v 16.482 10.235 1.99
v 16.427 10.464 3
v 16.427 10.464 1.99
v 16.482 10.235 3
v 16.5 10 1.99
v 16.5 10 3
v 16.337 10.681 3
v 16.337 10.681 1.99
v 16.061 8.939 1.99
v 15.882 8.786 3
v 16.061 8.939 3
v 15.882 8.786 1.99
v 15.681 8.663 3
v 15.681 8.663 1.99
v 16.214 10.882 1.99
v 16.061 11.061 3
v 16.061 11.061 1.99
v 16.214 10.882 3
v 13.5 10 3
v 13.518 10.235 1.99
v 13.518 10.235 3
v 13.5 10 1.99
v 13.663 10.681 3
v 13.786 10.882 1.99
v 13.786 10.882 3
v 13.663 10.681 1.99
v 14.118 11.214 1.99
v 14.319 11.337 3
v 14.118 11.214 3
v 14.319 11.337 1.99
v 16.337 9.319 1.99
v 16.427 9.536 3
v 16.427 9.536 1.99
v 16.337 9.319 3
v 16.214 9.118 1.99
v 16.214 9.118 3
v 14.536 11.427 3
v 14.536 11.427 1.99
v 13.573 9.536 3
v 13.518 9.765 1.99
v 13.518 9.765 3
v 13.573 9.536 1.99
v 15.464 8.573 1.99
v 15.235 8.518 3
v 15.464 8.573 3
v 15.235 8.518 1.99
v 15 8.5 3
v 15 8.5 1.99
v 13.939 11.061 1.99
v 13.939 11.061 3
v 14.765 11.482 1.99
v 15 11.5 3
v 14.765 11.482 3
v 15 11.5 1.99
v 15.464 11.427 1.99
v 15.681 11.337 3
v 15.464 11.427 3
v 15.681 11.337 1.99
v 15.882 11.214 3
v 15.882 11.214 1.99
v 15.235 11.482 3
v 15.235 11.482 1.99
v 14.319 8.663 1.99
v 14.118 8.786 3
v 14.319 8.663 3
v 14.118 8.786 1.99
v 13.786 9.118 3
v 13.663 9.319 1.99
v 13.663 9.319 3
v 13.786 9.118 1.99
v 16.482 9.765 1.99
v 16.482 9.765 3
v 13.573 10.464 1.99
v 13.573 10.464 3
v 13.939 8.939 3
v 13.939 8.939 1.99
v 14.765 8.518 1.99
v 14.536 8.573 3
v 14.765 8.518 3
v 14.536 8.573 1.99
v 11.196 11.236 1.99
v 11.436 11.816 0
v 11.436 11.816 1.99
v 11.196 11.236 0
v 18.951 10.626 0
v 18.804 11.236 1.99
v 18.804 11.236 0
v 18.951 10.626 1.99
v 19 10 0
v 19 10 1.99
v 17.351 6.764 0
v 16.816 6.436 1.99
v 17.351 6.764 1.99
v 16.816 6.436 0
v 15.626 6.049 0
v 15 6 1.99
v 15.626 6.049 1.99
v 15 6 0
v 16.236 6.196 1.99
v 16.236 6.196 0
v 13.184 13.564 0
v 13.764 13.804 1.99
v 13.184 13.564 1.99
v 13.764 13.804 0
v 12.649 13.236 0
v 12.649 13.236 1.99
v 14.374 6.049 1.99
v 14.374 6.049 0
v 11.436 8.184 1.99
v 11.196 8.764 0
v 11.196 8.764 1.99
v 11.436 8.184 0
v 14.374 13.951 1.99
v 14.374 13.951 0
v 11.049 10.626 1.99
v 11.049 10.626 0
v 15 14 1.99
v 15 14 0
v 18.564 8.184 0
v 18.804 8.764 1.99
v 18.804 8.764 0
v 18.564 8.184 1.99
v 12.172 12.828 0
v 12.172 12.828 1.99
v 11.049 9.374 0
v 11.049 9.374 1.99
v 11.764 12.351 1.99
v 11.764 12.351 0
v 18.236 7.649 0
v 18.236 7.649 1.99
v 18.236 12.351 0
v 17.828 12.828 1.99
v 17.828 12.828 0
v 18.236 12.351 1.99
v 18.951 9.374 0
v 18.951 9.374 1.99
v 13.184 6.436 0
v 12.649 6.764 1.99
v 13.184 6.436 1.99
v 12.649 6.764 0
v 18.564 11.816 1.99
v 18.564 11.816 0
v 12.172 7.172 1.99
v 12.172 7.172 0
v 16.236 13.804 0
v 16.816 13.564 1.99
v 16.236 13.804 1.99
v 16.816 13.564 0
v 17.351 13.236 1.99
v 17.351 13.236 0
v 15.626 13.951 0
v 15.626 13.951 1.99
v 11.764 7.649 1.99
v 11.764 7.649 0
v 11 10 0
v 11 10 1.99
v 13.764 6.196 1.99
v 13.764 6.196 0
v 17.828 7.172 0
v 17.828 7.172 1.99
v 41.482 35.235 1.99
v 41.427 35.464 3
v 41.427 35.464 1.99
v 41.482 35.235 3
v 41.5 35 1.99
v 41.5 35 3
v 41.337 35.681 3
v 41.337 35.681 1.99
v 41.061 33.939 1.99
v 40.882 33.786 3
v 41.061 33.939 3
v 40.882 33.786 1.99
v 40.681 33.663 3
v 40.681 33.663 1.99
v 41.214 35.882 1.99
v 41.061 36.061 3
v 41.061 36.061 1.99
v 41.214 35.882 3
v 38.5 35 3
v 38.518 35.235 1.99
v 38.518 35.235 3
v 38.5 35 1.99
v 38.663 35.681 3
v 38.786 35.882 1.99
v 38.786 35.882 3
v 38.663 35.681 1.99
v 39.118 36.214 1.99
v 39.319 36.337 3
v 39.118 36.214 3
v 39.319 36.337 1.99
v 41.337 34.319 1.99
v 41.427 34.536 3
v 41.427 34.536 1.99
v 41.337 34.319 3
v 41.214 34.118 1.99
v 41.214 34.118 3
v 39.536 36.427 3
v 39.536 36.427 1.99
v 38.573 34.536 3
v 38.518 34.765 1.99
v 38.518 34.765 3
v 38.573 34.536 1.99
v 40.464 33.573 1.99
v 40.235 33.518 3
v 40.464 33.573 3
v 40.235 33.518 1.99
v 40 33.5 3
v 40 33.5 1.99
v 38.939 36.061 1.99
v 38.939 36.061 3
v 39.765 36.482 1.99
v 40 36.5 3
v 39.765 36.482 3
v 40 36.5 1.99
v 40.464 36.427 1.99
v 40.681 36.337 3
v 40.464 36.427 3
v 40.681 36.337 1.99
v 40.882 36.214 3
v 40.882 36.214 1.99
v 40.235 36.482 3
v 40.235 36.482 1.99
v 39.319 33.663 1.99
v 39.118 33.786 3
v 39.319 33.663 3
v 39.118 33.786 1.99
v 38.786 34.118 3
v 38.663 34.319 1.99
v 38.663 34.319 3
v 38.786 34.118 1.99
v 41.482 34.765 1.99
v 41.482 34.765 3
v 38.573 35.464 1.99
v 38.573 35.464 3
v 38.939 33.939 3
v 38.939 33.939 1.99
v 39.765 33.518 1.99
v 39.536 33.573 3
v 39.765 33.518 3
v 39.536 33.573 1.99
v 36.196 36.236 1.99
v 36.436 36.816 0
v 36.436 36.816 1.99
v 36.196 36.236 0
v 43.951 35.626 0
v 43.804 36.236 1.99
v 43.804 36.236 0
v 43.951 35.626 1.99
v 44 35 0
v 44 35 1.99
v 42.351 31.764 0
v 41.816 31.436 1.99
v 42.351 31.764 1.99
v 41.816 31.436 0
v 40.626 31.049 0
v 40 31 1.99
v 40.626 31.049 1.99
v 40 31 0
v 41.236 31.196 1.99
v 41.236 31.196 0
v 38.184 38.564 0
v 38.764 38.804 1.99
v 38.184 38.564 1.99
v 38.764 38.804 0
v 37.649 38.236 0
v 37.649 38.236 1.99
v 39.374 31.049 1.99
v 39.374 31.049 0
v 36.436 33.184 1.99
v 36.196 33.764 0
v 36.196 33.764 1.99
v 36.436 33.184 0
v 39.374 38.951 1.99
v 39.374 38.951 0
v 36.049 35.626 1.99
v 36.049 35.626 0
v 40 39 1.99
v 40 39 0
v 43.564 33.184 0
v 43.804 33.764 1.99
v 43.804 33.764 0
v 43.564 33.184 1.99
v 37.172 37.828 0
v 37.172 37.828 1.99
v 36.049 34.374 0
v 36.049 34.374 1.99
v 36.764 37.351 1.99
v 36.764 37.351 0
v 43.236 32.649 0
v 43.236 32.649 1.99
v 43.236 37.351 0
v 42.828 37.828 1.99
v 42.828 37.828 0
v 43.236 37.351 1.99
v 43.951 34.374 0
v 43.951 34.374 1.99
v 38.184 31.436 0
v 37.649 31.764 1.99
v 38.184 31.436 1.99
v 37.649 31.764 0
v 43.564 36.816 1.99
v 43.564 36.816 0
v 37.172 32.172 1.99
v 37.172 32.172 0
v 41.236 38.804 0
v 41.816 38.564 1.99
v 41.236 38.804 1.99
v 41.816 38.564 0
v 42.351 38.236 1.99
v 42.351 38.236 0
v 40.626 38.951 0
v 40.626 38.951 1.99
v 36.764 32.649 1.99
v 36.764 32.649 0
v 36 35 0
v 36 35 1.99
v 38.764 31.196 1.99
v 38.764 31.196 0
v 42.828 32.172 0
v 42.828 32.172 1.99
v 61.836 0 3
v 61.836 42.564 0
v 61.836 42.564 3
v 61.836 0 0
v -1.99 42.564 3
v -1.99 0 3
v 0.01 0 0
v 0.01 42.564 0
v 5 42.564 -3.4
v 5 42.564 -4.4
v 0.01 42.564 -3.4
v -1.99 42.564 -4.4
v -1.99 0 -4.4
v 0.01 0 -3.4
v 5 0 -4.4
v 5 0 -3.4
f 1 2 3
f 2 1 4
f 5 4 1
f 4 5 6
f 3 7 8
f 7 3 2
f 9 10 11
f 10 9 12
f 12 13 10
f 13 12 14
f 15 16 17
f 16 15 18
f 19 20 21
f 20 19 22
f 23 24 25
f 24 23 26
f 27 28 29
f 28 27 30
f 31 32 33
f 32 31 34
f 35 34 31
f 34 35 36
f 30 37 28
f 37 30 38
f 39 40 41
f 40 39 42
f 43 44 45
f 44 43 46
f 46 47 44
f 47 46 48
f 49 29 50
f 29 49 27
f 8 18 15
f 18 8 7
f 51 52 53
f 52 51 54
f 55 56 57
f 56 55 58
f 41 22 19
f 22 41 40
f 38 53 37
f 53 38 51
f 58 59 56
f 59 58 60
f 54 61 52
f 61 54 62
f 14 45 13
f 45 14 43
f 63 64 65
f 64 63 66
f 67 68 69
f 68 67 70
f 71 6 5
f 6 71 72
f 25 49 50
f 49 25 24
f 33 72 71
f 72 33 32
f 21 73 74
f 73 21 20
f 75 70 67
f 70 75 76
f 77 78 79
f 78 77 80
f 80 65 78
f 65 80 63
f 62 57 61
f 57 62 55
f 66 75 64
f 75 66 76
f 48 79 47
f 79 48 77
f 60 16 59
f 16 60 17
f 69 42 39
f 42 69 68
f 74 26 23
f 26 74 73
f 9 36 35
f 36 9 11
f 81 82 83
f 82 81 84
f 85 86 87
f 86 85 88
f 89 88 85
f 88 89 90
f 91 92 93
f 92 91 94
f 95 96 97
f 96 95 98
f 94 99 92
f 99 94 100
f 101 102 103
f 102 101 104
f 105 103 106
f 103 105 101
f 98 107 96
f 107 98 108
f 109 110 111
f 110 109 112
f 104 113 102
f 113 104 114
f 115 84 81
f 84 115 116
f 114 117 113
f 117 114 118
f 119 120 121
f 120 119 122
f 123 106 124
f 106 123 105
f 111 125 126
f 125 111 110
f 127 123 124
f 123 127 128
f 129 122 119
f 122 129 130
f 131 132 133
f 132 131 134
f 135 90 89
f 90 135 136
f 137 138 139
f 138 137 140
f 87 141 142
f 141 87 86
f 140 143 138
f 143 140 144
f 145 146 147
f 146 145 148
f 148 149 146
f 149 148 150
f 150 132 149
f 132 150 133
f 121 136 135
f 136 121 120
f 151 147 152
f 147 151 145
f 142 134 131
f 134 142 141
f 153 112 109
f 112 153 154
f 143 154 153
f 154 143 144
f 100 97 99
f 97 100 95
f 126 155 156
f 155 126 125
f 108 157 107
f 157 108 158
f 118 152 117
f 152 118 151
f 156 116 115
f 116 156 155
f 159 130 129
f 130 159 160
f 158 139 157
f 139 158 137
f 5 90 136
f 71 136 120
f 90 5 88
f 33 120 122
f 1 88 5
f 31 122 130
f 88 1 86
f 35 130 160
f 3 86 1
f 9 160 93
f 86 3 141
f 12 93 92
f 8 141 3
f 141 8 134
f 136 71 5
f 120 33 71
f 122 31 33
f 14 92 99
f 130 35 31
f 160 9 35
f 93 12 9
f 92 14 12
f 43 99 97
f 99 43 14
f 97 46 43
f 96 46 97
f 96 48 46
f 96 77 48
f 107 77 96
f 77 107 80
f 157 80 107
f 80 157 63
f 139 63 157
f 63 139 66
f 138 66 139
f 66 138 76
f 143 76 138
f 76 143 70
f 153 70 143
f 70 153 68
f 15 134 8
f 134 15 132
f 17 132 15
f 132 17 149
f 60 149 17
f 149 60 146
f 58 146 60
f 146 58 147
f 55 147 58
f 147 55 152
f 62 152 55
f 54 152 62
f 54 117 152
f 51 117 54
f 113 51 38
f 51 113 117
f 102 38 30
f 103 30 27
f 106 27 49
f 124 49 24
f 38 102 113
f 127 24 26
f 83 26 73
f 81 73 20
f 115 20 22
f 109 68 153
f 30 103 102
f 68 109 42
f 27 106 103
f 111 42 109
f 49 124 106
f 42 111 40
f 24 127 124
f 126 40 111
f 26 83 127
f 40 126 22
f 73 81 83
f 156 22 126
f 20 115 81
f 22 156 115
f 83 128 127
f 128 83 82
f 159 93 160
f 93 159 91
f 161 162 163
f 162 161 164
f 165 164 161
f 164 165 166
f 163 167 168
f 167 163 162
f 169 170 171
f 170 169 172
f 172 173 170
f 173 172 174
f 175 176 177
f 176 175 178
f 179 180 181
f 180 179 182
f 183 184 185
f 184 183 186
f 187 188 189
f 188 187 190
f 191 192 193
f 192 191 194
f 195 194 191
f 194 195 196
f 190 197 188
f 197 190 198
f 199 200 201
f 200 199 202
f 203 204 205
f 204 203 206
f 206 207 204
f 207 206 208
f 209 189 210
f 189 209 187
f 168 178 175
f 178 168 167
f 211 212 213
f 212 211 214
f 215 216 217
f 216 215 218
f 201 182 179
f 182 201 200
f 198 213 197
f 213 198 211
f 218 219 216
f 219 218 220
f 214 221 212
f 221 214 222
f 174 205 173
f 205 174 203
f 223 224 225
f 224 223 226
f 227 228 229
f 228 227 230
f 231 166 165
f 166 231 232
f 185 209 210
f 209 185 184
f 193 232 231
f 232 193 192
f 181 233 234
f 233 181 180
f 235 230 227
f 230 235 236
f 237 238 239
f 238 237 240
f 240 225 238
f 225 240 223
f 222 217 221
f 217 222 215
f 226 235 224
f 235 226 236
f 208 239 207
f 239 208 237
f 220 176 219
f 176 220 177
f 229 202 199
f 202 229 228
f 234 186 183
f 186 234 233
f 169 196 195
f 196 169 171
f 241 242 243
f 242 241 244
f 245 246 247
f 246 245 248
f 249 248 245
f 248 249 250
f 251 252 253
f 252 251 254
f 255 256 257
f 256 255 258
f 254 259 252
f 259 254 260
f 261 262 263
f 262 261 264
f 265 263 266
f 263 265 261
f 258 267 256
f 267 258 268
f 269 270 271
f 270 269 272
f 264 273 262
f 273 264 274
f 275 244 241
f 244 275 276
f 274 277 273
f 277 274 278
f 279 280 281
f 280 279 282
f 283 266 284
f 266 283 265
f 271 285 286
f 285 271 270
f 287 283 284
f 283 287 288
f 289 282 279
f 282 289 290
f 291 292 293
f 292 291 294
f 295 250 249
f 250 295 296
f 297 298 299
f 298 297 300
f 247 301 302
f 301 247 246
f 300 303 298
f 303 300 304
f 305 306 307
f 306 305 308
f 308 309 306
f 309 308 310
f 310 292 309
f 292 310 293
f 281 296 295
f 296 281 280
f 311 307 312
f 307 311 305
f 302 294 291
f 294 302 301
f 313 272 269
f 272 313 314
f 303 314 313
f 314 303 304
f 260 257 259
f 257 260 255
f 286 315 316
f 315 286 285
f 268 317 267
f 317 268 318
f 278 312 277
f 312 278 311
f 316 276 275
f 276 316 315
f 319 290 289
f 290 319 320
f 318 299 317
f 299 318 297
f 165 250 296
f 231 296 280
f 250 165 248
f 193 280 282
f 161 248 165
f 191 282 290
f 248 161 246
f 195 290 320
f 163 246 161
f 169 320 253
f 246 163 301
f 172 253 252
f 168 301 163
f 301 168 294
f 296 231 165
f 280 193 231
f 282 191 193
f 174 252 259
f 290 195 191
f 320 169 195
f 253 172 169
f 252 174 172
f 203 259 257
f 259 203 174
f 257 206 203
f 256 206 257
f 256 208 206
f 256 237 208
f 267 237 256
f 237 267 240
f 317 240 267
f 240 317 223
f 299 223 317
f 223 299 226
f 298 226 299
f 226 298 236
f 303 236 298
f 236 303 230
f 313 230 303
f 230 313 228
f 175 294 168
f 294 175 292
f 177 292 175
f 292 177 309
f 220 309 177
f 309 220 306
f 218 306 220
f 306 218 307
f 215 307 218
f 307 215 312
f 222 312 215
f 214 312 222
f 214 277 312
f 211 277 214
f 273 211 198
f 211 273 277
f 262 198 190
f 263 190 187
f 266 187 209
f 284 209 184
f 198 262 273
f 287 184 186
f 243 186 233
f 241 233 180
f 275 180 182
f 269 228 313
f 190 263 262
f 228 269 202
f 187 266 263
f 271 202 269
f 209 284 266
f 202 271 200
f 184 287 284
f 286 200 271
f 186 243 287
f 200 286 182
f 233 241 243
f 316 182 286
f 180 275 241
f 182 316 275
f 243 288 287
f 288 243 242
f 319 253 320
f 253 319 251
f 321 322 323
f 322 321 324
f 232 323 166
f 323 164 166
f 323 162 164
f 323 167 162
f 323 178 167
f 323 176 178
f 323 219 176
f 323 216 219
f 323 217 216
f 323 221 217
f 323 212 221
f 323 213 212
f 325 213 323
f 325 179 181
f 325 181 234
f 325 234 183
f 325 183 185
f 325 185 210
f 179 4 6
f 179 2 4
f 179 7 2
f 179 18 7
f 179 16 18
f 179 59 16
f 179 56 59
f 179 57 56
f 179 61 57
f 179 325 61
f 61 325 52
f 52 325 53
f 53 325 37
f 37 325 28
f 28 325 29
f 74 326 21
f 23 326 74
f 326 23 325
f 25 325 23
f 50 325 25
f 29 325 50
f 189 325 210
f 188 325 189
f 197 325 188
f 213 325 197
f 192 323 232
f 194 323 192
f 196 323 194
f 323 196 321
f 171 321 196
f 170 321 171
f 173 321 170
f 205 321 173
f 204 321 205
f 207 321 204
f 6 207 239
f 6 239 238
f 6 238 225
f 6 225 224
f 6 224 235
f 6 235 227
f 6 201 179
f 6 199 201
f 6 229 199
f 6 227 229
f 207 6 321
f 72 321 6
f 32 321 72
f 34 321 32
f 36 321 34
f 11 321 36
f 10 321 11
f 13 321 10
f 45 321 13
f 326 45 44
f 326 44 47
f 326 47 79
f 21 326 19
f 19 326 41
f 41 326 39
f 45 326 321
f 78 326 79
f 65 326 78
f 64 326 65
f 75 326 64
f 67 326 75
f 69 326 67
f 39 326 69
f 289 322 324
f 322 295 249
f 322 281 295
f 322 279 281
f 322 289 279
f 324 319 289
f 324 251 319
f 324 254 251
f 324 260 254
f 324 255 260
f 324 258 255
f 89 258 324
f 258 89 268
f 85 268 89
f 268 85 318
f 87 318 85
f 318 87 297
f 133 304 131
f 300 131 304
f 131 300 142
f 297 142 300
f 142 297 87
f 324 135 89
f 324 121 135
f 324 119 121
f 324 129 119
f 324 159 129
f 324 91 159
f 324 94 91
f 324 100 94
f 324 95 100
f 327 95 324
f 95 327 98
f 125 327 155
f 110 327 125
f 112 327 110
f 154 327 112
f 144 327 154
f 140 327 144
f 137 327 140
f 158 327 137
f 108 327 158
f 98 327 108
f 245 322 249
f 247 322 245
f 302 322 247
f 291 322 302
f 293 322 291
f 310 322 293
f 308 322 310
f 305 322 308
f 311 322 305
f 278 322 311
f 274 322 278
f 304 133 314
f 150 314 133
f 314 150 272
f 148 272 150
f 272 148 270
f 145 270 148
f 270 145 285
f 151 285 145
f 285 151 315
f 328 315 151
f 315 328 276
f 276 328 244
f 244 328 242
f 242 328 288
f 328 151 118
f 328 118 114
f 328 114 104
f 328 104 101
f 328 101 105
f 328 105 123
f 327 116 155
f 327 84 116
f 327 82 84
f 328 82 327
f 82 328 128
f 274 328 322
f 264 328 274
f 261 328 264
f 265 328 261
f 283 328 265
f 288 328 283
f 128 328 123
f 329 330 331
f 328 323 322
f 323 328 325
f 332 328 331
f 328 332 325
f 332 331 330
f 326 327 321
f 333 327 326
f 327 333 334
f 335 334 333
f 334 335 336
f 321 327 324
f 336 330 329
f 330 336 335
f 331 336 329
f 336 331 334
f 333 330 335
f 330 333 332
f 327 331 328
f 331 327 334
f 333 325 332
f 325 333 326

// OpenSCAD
// file: ../box/ProjectBox/util.scad
// Copyright (c) 2024 Chris Lee and contibuters.
// Licensed under the MIT license. See LICENSE file in the project root for details.

include <MCAD/units.scad>

ones = [1, 1, 1];

module RX(angle) {
  rotate(angle, X) children();
}
module RY(angle) {
  rotate(angle, Y) children();
}
module RZ(angle) {
  rotate(angle, Z) children();
}
module TX(dist) {
  translate(X*dist) children();
}
module TX(dist) {
  translate(X*dist) children();
}
module TY(dist) {
  translate(Y*dist) children();
}
module TZ(dist) {
  translate(Z*dist) children();
}

// x-extra and y-extra adjust the x/y offset at the far-x and far-y corners.
module at_corners(dims, corner_offset, to_draw=undef, x_extra=0.0, y_extra=0.0) {
  o = corner_offset;
  if (!to_draw || to_draw[0]) translate([o, o, 0]) children();
  if (!to_draw || to_draw[1]) translate([dims[0]-o+x_extra, o, 0]) rotate(90, Z) children();
  if (!to_draw || to_draw[2]) translate([dims[0]-o+x_extra, dims[1]-o+y_extra, 0])
				rotate(180, Z) children();
  if (!to_draw || to_draw[3]) translate([o, dims[1]-o+y_extra, 0]) rotate(270, Z) children();
}
// file: ../box/ProjectBox/screw_tab.scad
// Copyright (c) 2024 Chris Lee and contibuters.
// Licensed under the MIT license. See LICENSE file in the project root for details.

include <MCAD/units.scad>

// Screw tab is drawn in the y-direction (attached on -Y side).
module screw_tab(tab_width=10, thickness=2, screw_radius=2) {
  $fn=40;
  dz = thickness;
  sd = tab_width;
  sr = tab_width / 2;
  translate([-sr, -epsilon, 0]) difference() {
    union() {
      cube([sd, sr, dz]);
      translate([sr, sr, 0]) cylinder(dz, sr, sr);
    }
    translate([sr, sr, -epsilon]) cylinder(dz+1, screw_radius, screw_radius);
  }
}
// file: ../box/ProjectBox/rounded_box.scad
// Copyright (c) 2024 Chris Lee and contibuters.
// Licensed under the MIT license. See LICENSE file in the project root for details.

module rounded_box(dims, r) {
  x = dims[0];
  y = dims[1];
  z = dims[2];
  module cyl() {
    cylinder(z, r, r, $fn=40);
  }
  if (r == 0) {
    cube(r);
  } else {
    hull() {
      translate([r, r, 0]) cyl();
      translate([x-r, r, 0]) cyl();
      translate([x-r, y-r, 0]) cyl();
      translate([r, y-r, 0]) cyl();
    }
  }
}
// file: ../box/ProjectBox/shtc3_window.scad
// Copyright (c) 2024 Chris Lee and contibuters.
// Licensed under the MIT license. See LICENSE file in the project root for details.

module shtc3_window(offset, space_above_board, wall, negative, z_gap = 0.0) {
  sz = [3, 3, 1];
  translate(offset) {
    if (negative) {
      translate([0, 0, z_gap-1]) {
	cube([sz[0], sz[1], space_above_board+wall+2-z_gap]);
      }
    } else {
      translate([-wall, -wall, z_gap+epsilon]) {
	cube([sz[0] + 2*wall, sz[1] + 2*wall, space_above_board-z_gap]);
      }
    }
  }
}
// file: ../box/ProjectBox/mounts.scad
// Copyright (c) 2024 Chris Lee and contibuters.
// Licensed under the MIT license. See LICENSE file in the project root for details.

module screw_mount(height, wall, screw_radius) {
  $fn = 20;
  difference() {
    cylinder(height, screw_radius+wall, screw_radius+wall);
    cylinder(height+epsilon, screw_radius, screw_radius);
  }
}
// file: ../box/ProjectBox/project_box.scad
// Copyright (c) 2024 Chris Lee and contibuters.
// Licensed under the MIT license. See LICENSE file in the project root for details.

include <MCAD/units.scad>
include <rounded_box.scad>
include <screw_tab.scad>
use <util.scad>

bump_d = 0.8;

module in_board_frame(outer_dims, board_dims, space_below_board) {
  translate([(outer_dims[0] - board_dims[0])/2,
	     (outer_dims[1] - board_dims[1])/2,
	     space_below_board])
    children();
}

default_tab_len = 10;
function tab_length(dim, num_tabs=2) = min(default_tab_len, dim/(2*(num_tabs+1)));
function tab_offset(i, dim, num_tabs=2) = (dim*(i+1)/(num_tabs+1))-0.5*tab_length(dim, num_tabs);

module project_box(outer_dims,
		   wall_thickness=1,
		   gap=0.1,
		   // If true put snaps for top/bottom on sides rather than front/back.
		   snaps_on_sides=false,
		   corner_radius=0.0,
		   top=true,
		   top_cutouts=undef,
		   ym_cutouts=undef,
		   screw_tab_d=0) {
  wall = wall_thickness;
  num_snaps = 2;

  // Length of side of box snap-tabs will be added.
  tabdim = snaps_on_sides ? outer_dims[1] : outer_dims[0];
  // Length of snap-tab holes (tabs shrinks slightly to fit).
  tablen = tab_length(tabdim, num_snaps);
  // Difference between tab length and tab hole length;
  tab_gap = 1;

  // Space between bottom of box and top of box.
  fit_gap = 0.02;

  // The bottom of the box fits inside the shell of the top.
  dims = top ? outer_dims : outer_dims - (2*wall+fit_gap) * [1, 1, 1];

  // Tabs for clicking base into start at wall-height, are 2*wall-height high.
  // Allow 2*wall_height above bump for hight of bottom part of box.
  tab_depth = min(bump_d, dims[2] - 3*wall);
  bottom_height = wall+tab_depth+2*wall;

  module bump() {
    dh = bump_d - fit_gap;
    rotate(90, Y) cylinder(tablen-tab_gap, dh, dh, $fn=20);
  }

  module hump_positives(humps, space_above_board, corner_radius, wall) {
    for (hump = humps) {
      offset = hump[0];
      outer_dims = hump[1];
      z_start = gap * 2 + wall + space_below_board + board_thickness + space_above_board + epsilon;
      translate([offset[0], offset[1], z_start]) rounded_box(outer_dims, corner_radius);
    }
  }
  module hump_negatives(humps, space_above_board, corner_radius, wall) {
    for (hump = humps) {
      offset = hump[0];
      outer_dims = hump[1];
      z_start = gap * 2 + wall + space_below_board + board_thickness + space_above_board - epsilon - epsilon;
      translate([offset[0]+wall, offset[1]+wall, z_start])
	rounded_box(outer_dims-[wall*2, wall*2, wall], corner_radius);
    }
  }
  module cutouts(cutout_list, remove_len) {
    for (cutout = cutout_list) {
      offset = cutout[0];
      dims = cutout[1];
      translate([offset[0], offset[1], 0]) cube([dims[0], dims[1], remove_len]);
    }
  }

  wedge_dx = 2*wall;
  wedge_dy = min(outer_dims[1]-2*wall-corner_radius, 10);
  wedge_dz = wedge_dx;
  module wedge() {
    // Bump to stop the bottom of box to go too up into the top.
    translate([0, 0, bottom_height+fit_gap]) {
      // Start with cube, switch to wedge for printing.
      translate(Y*wedge_dy) rotate(90, X)
	linear_extrude(wedge_dy) polygon([[0, 0], [0, wedge_dz], [wedge_dx, 0]]);
    }
  }

  // The bottom of the box fits inside the shell of the top.
  translate(top ? [0,0,0] : wall*[1, 1, 0]) union() {
    difference() {
      // shell
      difference() {
	union() {
	  rounded_box(dims, corner_radius);
	  if (top)
	    hump_positives(bumps, space_above_board, corner_radius, wall);
	}
	iz = top ? (dims[2] - 2*wall) : dims[2];  // inner-z
	translate(ones*wall) rounded_box([dims[0] - wall*2, dims[1]-wall*2, iz], corner_radius);
	if (top) {
	  hump_negatives(bumps, space_above_board, corner_radius, wall);
	  // cutouts from the top surface
	  if (top_cutouts)
	    cutouts(top_cutouts, remove_len=100);
	  // cutouts from the y=0 surface
	  if (ym_cutouts)
	    translate([0, 1+wall, 0]) rotate([90, 0, 0]) cutouts(ym_cutouts, remove_len=(wall+2));
	}
      }

      if (!top) {
	// Box bottom

	// Cut off top.
	translate([-1, -1, bottom_height]) { cube(dims + 2 * ones); }
	// Make a slot for top to click into
	bottom_offset = -wall;  // offset to account for bottom fitting inside top.
	if (snaps_on_sides) {
	  for (isnap = [0:num_snaps-1]) {
	    y = tab_offset(isnap, tabdim, num_snaps) + bottom_offset;
	    translate([-1, y, wall]) cube([dims[0]+2, tablen, wall+tab_depth]);
	  }
	} else {
	  for (isnap = [0:num_snaps-1]) {
	    x = tab_offset(isnap, tabdim, num_snaps) + bottom_offset;
	    translate([x, -1, wall]) cube([tablen, dims[1]+2, wall+tab_depth]);
	  }
	}
      }	else {
	// Box top

	// Cut out for bottom
	translate(wall*[1, 1, -1]) {
	  rounded_box([dims[0]-2*wall, dims[1]-2*wall, wall*3], corner_radius);
	}
      }
    }

    // Board supports
    if (top) {
      // Snaps: Make bumps to click into slot in bottom.
      if (snaps_on_sides) {
	for (isnap = [0:num_snaps-1]) {
	  y = tab_offset(isnap, tabdim, num_snaps) + tab_gap/2;
	  translate([wall-epsilon, y, wall+gap/2]) rotate(90, Z) bump();
	  translate([dims[0]+epsilon-wall, y, wall+gap/2]) rotate(90, Z) bump();
	}
	translate([wall-epsilon, (outer_dims[1]-wedge_dy)/2, 0]) wedge();
	translate([outer_dims[0]-wall+epsilon, (outer_dims[1]+wedge_dy)/2, 0])
	  rotate(180, Z) wedge();
      } else {
	for (isnap = [0:num_snaps-1]) {
	  x = tab_offset(isnap, tabdim, num_snaps) + tab_gap/2;
	  translate([x, wall-epsilon, wall+gap/2]) bump();
	  translate([x, dims[1]+epsilon-wall, wall+gap/2]) bump();
	}
	translate([(outer_dims[0]+wedge_dy)/2, wall-epsilon, 0]) rotate(90, Z) wedge();
	translate([(outer_dims[0]-wedge_dy)/2, outer_dims[1]-wall+epsilon, 0])
	  rotate(270, Z) wedge();
      }
    }
  }

  if (top && screw_tab_d > 0) {
    translate([outer_dims[0]/2, outer_dims[1], 0])
      screw_tab(tab_width=screw_tab_d, thickness=2*wall, screw_radius=2);
  }
}

module holder_tab(wall_thickness, thickness=2, out_r=4, in_r=2) {
  translate(Z*wall_thickness) linear_extrude(thickness) {
    $fn = 20;
    y = epsilon;
    difference() {
      hull() {
	translate([0, epsilon-out_r]) circle(out_r);
	polygon([[-out_r, epsilon], [out_r, epsilon],
		 [out_r, 2*epsilon], [out_r, 2*epsilon]]);
      }
      translate([0, -out_r]) circle(in_r);
    }
  }
}
// file: ../box/box.scad
// Copyright (c) 2026 Chris Lee and contributors.
// Licensed under the MIT license. See LICENSE file in the project root for details.

include <ProjectBox/project_box.scad>
include <ProjectBox/mounts.scad>
include <ProjectBox/shtc3_window.scad>
include <board.scad>

ones = [1, 1, 1];

wall_thickness = 1;
gap = 0.2;
corner_radius = 2;
mount_offset = pad_space;

space_above_board = 2;
space_below_board = 5;
inner_dims = (board_dims
	      + Z*(space_above_board+space_below_board)
	      + 2*gap*ones);
outer_dims = (inner_dims
	      + 2*ones*wall_thickness
	      + [2, 2, 0] * corner_radius);

// OLED bump offset and dims
oled_o = [20, 0];
oled_d = [outer_dims[0] - oled_o[0], 17, 12];

// bumps is a list of [offset-xy, outer_dims]
humps = [[oled_o, oled_d]];

// cutout for moisture & pump
conns_o = [31.5, 17.1];
conns_d = [30.5, 21];
// cutout for water-level sensor
wlconn_o = [conns_o[0], conns_o[1]+conns_d[1]-epsilon];
wlconn_d = [8.5, 7];
// cutout for oled screen
olsc_o = [oled_o[0] + 7.5, oled_o[1] + 3.5];
olsc_d = [28, 12];
// top_cutouts is a list of [offset-xy,  dims-xu]
top_cutouts = [[conns_o, conns_d], [wlconn_o, wlconn_d], [olsc_o, olsc_d]];

usb_cutout = [[25, wall_thickness+space_below_board+board_thickness-1], [9.5, 3.5]];
ym_cutouts = [usb_cutout];

module in_Plant1337_board_frame(board_height=false) {
  zoffset = wall_thickness + (board_height ? space_below_board + 2*gap + board_thickness : 0);
  in_board_frame(outer_dims, board_dims, zoffset) children();
}

module Plant1337_box(top) {
  wall = wall_thickness;
  shtc3_loc = [board_dims[0] - 10.5, board_dims[1]-5, 0];

  difference() {
    union() {
      color("white") project_box(outer_dims,
		  wall_thickness=wall_thickness,
		  gap=gap,
		  snaps_on_sides=true,
		  corner_radius=corner_radius,
		  top=top,
		  humps=humps,
		  top_cutouts=top_cutouts,
		  ym_cutouts=ym_cutouts);
      if (top) {
	color("white") in_Plant1337_board_frame(board_height=true)
	  shtc3_window(shtc3_loc, space_above_board+wall, wall, false, z_gap=-1);
	translate([27, 30, outer_dims[2]-epsilon])
	  color("black") linear_extrude(0.5) {
	  translate([0, 0, 0]) text("1", size=4);
	  translate([14, 10, 0]) text("2", size=4);
	  translate([21, 10, 0]) text("3", size=4);
	  translate([29, 10, 0]) text("4", size=4);
	}
      } else {
	// Stuff to add on bottom.
	color("white") in_Plant1337_board_frame() {
	  at_corners(board_dims+1.0*X, mount_offset, x_extra=-1.2, y_extra=-0.2)
	    screw_mount(space_below_board, wall, 2.5/2);
	}
      }	
    }
    // Stuff to remove.
    if (top) {
      in_Plant1337_board_frame(board_height=true)
	shtc3_window(shtc3_loc, space_above_board, wall, true, z_gap=-1);
    } else {
      // Screw holes to mount on reservoir lid.
      w = 2;
      len = 25;
      $fn = 40;
      translate([outer_dims[0]/2, outer_dims[1]/2, -0.1]) {
	translate([-len/2, len/2, -1]) cylinder(2*w+2, 1.5, 1.5);
	translate([len/2, -len/2, -1]) cylinder(2*w+2, 1.5, 1.5);
      }
    }
  }
}
// file: ../box/board.scad
// Copyright (c) 2026 Chris Lee and contributors.
// Licensed under the MIT license. See LICENSE file in the project root for details.

include <ProjectBox/project_box.scad>

board_thickness = 1.6;
pad_space = 2.54;
board_dims = [23.4*pad_space, 16.6*pad_space, board_thickness];

module Plant1337_to_oled_frame() {
  u = pad_space;
  translate([u*23-0.5, 0.6, 13]) rotate([0, 0, 90]) children();
}

module oled() {
  s = inch * 0.1;
  pin_len = 4;
  color("silver") {
    for (i = [0: 3]) {
      translate([s*i+pad_space, pad_space/2, -pin_len]) cube([0.25, 0.25, pin_len]);
    }
  }
  color("gray") cube([12, 38, 1]);
  translate([0, 5.5, 1]) color("black") cube([12, 28, 1]);
}

module Plant1337_board() {
  u = pad_space;

  // Board imported from KiCad (VRML) -> meshlab
  translate([board_dims[0]/2, board_dims[1]/2, board_dims[2]/2]) color("white")
    import(file="Plant1337.stl", convexity=3);

  Plant1337_to_oled_frame() oled();
}
// file: hook.scad
// Copyright (c) 2026 Chris Lee and contributors.
// Licensed under the MIT license. See LICENSE file in the project root for details.

include <../box/board.scad>
include <../box/box.scad>

epsilon = 0.01;

screw_head_height = 2;
wall_thickness = 1;
reservoir_thickness = 3;
gap = 0.2;

module plantl33_hook() {
  module recessed_hole() {
    w = 2;
    d = screw_head_height + wall_thickness;
    translate([0, 0, -epsilon]) {
      cylinder(d+1, 1.5, 1.5);
      cylinder(screw_head_height, 4, 4);
    }
  }

  union() {
    // Ebox mount plate.
    difference() {
      $fn = 40;
      cube([inner_dims[0]+2, inner_dims[1], wall_thickness+screw_head_height]);
      // Screw holes fox ebox;
      translate([-0, -5, 0]) {
	translate([15, 15, 0]) recessed_hole();
	translate([40, 40, 0]) recessed_hole();
      }
    }
    sep = wall_thickness+reservoir_thickness+gap*2;
    // Inside reservoir.
    translate([0, 0, -sep]) cube([5, inner_dims[1], wall_thickness]);
    // Top of the hook, spaning the reservoir wall.
    translate([-2*wall_thickness+epsilon, 0, -sep])
      cube([wall_thickness*2, inner_dims[1], wall_thickness+sep+screw_head_height]);
  }
}
// main file
// Copyright (c) 2026 Chris Lee and contributors.
// Licensed under the MIT license. See LICENSE file in the project root for details.

include <hook.scad>

plantl33_hook();
